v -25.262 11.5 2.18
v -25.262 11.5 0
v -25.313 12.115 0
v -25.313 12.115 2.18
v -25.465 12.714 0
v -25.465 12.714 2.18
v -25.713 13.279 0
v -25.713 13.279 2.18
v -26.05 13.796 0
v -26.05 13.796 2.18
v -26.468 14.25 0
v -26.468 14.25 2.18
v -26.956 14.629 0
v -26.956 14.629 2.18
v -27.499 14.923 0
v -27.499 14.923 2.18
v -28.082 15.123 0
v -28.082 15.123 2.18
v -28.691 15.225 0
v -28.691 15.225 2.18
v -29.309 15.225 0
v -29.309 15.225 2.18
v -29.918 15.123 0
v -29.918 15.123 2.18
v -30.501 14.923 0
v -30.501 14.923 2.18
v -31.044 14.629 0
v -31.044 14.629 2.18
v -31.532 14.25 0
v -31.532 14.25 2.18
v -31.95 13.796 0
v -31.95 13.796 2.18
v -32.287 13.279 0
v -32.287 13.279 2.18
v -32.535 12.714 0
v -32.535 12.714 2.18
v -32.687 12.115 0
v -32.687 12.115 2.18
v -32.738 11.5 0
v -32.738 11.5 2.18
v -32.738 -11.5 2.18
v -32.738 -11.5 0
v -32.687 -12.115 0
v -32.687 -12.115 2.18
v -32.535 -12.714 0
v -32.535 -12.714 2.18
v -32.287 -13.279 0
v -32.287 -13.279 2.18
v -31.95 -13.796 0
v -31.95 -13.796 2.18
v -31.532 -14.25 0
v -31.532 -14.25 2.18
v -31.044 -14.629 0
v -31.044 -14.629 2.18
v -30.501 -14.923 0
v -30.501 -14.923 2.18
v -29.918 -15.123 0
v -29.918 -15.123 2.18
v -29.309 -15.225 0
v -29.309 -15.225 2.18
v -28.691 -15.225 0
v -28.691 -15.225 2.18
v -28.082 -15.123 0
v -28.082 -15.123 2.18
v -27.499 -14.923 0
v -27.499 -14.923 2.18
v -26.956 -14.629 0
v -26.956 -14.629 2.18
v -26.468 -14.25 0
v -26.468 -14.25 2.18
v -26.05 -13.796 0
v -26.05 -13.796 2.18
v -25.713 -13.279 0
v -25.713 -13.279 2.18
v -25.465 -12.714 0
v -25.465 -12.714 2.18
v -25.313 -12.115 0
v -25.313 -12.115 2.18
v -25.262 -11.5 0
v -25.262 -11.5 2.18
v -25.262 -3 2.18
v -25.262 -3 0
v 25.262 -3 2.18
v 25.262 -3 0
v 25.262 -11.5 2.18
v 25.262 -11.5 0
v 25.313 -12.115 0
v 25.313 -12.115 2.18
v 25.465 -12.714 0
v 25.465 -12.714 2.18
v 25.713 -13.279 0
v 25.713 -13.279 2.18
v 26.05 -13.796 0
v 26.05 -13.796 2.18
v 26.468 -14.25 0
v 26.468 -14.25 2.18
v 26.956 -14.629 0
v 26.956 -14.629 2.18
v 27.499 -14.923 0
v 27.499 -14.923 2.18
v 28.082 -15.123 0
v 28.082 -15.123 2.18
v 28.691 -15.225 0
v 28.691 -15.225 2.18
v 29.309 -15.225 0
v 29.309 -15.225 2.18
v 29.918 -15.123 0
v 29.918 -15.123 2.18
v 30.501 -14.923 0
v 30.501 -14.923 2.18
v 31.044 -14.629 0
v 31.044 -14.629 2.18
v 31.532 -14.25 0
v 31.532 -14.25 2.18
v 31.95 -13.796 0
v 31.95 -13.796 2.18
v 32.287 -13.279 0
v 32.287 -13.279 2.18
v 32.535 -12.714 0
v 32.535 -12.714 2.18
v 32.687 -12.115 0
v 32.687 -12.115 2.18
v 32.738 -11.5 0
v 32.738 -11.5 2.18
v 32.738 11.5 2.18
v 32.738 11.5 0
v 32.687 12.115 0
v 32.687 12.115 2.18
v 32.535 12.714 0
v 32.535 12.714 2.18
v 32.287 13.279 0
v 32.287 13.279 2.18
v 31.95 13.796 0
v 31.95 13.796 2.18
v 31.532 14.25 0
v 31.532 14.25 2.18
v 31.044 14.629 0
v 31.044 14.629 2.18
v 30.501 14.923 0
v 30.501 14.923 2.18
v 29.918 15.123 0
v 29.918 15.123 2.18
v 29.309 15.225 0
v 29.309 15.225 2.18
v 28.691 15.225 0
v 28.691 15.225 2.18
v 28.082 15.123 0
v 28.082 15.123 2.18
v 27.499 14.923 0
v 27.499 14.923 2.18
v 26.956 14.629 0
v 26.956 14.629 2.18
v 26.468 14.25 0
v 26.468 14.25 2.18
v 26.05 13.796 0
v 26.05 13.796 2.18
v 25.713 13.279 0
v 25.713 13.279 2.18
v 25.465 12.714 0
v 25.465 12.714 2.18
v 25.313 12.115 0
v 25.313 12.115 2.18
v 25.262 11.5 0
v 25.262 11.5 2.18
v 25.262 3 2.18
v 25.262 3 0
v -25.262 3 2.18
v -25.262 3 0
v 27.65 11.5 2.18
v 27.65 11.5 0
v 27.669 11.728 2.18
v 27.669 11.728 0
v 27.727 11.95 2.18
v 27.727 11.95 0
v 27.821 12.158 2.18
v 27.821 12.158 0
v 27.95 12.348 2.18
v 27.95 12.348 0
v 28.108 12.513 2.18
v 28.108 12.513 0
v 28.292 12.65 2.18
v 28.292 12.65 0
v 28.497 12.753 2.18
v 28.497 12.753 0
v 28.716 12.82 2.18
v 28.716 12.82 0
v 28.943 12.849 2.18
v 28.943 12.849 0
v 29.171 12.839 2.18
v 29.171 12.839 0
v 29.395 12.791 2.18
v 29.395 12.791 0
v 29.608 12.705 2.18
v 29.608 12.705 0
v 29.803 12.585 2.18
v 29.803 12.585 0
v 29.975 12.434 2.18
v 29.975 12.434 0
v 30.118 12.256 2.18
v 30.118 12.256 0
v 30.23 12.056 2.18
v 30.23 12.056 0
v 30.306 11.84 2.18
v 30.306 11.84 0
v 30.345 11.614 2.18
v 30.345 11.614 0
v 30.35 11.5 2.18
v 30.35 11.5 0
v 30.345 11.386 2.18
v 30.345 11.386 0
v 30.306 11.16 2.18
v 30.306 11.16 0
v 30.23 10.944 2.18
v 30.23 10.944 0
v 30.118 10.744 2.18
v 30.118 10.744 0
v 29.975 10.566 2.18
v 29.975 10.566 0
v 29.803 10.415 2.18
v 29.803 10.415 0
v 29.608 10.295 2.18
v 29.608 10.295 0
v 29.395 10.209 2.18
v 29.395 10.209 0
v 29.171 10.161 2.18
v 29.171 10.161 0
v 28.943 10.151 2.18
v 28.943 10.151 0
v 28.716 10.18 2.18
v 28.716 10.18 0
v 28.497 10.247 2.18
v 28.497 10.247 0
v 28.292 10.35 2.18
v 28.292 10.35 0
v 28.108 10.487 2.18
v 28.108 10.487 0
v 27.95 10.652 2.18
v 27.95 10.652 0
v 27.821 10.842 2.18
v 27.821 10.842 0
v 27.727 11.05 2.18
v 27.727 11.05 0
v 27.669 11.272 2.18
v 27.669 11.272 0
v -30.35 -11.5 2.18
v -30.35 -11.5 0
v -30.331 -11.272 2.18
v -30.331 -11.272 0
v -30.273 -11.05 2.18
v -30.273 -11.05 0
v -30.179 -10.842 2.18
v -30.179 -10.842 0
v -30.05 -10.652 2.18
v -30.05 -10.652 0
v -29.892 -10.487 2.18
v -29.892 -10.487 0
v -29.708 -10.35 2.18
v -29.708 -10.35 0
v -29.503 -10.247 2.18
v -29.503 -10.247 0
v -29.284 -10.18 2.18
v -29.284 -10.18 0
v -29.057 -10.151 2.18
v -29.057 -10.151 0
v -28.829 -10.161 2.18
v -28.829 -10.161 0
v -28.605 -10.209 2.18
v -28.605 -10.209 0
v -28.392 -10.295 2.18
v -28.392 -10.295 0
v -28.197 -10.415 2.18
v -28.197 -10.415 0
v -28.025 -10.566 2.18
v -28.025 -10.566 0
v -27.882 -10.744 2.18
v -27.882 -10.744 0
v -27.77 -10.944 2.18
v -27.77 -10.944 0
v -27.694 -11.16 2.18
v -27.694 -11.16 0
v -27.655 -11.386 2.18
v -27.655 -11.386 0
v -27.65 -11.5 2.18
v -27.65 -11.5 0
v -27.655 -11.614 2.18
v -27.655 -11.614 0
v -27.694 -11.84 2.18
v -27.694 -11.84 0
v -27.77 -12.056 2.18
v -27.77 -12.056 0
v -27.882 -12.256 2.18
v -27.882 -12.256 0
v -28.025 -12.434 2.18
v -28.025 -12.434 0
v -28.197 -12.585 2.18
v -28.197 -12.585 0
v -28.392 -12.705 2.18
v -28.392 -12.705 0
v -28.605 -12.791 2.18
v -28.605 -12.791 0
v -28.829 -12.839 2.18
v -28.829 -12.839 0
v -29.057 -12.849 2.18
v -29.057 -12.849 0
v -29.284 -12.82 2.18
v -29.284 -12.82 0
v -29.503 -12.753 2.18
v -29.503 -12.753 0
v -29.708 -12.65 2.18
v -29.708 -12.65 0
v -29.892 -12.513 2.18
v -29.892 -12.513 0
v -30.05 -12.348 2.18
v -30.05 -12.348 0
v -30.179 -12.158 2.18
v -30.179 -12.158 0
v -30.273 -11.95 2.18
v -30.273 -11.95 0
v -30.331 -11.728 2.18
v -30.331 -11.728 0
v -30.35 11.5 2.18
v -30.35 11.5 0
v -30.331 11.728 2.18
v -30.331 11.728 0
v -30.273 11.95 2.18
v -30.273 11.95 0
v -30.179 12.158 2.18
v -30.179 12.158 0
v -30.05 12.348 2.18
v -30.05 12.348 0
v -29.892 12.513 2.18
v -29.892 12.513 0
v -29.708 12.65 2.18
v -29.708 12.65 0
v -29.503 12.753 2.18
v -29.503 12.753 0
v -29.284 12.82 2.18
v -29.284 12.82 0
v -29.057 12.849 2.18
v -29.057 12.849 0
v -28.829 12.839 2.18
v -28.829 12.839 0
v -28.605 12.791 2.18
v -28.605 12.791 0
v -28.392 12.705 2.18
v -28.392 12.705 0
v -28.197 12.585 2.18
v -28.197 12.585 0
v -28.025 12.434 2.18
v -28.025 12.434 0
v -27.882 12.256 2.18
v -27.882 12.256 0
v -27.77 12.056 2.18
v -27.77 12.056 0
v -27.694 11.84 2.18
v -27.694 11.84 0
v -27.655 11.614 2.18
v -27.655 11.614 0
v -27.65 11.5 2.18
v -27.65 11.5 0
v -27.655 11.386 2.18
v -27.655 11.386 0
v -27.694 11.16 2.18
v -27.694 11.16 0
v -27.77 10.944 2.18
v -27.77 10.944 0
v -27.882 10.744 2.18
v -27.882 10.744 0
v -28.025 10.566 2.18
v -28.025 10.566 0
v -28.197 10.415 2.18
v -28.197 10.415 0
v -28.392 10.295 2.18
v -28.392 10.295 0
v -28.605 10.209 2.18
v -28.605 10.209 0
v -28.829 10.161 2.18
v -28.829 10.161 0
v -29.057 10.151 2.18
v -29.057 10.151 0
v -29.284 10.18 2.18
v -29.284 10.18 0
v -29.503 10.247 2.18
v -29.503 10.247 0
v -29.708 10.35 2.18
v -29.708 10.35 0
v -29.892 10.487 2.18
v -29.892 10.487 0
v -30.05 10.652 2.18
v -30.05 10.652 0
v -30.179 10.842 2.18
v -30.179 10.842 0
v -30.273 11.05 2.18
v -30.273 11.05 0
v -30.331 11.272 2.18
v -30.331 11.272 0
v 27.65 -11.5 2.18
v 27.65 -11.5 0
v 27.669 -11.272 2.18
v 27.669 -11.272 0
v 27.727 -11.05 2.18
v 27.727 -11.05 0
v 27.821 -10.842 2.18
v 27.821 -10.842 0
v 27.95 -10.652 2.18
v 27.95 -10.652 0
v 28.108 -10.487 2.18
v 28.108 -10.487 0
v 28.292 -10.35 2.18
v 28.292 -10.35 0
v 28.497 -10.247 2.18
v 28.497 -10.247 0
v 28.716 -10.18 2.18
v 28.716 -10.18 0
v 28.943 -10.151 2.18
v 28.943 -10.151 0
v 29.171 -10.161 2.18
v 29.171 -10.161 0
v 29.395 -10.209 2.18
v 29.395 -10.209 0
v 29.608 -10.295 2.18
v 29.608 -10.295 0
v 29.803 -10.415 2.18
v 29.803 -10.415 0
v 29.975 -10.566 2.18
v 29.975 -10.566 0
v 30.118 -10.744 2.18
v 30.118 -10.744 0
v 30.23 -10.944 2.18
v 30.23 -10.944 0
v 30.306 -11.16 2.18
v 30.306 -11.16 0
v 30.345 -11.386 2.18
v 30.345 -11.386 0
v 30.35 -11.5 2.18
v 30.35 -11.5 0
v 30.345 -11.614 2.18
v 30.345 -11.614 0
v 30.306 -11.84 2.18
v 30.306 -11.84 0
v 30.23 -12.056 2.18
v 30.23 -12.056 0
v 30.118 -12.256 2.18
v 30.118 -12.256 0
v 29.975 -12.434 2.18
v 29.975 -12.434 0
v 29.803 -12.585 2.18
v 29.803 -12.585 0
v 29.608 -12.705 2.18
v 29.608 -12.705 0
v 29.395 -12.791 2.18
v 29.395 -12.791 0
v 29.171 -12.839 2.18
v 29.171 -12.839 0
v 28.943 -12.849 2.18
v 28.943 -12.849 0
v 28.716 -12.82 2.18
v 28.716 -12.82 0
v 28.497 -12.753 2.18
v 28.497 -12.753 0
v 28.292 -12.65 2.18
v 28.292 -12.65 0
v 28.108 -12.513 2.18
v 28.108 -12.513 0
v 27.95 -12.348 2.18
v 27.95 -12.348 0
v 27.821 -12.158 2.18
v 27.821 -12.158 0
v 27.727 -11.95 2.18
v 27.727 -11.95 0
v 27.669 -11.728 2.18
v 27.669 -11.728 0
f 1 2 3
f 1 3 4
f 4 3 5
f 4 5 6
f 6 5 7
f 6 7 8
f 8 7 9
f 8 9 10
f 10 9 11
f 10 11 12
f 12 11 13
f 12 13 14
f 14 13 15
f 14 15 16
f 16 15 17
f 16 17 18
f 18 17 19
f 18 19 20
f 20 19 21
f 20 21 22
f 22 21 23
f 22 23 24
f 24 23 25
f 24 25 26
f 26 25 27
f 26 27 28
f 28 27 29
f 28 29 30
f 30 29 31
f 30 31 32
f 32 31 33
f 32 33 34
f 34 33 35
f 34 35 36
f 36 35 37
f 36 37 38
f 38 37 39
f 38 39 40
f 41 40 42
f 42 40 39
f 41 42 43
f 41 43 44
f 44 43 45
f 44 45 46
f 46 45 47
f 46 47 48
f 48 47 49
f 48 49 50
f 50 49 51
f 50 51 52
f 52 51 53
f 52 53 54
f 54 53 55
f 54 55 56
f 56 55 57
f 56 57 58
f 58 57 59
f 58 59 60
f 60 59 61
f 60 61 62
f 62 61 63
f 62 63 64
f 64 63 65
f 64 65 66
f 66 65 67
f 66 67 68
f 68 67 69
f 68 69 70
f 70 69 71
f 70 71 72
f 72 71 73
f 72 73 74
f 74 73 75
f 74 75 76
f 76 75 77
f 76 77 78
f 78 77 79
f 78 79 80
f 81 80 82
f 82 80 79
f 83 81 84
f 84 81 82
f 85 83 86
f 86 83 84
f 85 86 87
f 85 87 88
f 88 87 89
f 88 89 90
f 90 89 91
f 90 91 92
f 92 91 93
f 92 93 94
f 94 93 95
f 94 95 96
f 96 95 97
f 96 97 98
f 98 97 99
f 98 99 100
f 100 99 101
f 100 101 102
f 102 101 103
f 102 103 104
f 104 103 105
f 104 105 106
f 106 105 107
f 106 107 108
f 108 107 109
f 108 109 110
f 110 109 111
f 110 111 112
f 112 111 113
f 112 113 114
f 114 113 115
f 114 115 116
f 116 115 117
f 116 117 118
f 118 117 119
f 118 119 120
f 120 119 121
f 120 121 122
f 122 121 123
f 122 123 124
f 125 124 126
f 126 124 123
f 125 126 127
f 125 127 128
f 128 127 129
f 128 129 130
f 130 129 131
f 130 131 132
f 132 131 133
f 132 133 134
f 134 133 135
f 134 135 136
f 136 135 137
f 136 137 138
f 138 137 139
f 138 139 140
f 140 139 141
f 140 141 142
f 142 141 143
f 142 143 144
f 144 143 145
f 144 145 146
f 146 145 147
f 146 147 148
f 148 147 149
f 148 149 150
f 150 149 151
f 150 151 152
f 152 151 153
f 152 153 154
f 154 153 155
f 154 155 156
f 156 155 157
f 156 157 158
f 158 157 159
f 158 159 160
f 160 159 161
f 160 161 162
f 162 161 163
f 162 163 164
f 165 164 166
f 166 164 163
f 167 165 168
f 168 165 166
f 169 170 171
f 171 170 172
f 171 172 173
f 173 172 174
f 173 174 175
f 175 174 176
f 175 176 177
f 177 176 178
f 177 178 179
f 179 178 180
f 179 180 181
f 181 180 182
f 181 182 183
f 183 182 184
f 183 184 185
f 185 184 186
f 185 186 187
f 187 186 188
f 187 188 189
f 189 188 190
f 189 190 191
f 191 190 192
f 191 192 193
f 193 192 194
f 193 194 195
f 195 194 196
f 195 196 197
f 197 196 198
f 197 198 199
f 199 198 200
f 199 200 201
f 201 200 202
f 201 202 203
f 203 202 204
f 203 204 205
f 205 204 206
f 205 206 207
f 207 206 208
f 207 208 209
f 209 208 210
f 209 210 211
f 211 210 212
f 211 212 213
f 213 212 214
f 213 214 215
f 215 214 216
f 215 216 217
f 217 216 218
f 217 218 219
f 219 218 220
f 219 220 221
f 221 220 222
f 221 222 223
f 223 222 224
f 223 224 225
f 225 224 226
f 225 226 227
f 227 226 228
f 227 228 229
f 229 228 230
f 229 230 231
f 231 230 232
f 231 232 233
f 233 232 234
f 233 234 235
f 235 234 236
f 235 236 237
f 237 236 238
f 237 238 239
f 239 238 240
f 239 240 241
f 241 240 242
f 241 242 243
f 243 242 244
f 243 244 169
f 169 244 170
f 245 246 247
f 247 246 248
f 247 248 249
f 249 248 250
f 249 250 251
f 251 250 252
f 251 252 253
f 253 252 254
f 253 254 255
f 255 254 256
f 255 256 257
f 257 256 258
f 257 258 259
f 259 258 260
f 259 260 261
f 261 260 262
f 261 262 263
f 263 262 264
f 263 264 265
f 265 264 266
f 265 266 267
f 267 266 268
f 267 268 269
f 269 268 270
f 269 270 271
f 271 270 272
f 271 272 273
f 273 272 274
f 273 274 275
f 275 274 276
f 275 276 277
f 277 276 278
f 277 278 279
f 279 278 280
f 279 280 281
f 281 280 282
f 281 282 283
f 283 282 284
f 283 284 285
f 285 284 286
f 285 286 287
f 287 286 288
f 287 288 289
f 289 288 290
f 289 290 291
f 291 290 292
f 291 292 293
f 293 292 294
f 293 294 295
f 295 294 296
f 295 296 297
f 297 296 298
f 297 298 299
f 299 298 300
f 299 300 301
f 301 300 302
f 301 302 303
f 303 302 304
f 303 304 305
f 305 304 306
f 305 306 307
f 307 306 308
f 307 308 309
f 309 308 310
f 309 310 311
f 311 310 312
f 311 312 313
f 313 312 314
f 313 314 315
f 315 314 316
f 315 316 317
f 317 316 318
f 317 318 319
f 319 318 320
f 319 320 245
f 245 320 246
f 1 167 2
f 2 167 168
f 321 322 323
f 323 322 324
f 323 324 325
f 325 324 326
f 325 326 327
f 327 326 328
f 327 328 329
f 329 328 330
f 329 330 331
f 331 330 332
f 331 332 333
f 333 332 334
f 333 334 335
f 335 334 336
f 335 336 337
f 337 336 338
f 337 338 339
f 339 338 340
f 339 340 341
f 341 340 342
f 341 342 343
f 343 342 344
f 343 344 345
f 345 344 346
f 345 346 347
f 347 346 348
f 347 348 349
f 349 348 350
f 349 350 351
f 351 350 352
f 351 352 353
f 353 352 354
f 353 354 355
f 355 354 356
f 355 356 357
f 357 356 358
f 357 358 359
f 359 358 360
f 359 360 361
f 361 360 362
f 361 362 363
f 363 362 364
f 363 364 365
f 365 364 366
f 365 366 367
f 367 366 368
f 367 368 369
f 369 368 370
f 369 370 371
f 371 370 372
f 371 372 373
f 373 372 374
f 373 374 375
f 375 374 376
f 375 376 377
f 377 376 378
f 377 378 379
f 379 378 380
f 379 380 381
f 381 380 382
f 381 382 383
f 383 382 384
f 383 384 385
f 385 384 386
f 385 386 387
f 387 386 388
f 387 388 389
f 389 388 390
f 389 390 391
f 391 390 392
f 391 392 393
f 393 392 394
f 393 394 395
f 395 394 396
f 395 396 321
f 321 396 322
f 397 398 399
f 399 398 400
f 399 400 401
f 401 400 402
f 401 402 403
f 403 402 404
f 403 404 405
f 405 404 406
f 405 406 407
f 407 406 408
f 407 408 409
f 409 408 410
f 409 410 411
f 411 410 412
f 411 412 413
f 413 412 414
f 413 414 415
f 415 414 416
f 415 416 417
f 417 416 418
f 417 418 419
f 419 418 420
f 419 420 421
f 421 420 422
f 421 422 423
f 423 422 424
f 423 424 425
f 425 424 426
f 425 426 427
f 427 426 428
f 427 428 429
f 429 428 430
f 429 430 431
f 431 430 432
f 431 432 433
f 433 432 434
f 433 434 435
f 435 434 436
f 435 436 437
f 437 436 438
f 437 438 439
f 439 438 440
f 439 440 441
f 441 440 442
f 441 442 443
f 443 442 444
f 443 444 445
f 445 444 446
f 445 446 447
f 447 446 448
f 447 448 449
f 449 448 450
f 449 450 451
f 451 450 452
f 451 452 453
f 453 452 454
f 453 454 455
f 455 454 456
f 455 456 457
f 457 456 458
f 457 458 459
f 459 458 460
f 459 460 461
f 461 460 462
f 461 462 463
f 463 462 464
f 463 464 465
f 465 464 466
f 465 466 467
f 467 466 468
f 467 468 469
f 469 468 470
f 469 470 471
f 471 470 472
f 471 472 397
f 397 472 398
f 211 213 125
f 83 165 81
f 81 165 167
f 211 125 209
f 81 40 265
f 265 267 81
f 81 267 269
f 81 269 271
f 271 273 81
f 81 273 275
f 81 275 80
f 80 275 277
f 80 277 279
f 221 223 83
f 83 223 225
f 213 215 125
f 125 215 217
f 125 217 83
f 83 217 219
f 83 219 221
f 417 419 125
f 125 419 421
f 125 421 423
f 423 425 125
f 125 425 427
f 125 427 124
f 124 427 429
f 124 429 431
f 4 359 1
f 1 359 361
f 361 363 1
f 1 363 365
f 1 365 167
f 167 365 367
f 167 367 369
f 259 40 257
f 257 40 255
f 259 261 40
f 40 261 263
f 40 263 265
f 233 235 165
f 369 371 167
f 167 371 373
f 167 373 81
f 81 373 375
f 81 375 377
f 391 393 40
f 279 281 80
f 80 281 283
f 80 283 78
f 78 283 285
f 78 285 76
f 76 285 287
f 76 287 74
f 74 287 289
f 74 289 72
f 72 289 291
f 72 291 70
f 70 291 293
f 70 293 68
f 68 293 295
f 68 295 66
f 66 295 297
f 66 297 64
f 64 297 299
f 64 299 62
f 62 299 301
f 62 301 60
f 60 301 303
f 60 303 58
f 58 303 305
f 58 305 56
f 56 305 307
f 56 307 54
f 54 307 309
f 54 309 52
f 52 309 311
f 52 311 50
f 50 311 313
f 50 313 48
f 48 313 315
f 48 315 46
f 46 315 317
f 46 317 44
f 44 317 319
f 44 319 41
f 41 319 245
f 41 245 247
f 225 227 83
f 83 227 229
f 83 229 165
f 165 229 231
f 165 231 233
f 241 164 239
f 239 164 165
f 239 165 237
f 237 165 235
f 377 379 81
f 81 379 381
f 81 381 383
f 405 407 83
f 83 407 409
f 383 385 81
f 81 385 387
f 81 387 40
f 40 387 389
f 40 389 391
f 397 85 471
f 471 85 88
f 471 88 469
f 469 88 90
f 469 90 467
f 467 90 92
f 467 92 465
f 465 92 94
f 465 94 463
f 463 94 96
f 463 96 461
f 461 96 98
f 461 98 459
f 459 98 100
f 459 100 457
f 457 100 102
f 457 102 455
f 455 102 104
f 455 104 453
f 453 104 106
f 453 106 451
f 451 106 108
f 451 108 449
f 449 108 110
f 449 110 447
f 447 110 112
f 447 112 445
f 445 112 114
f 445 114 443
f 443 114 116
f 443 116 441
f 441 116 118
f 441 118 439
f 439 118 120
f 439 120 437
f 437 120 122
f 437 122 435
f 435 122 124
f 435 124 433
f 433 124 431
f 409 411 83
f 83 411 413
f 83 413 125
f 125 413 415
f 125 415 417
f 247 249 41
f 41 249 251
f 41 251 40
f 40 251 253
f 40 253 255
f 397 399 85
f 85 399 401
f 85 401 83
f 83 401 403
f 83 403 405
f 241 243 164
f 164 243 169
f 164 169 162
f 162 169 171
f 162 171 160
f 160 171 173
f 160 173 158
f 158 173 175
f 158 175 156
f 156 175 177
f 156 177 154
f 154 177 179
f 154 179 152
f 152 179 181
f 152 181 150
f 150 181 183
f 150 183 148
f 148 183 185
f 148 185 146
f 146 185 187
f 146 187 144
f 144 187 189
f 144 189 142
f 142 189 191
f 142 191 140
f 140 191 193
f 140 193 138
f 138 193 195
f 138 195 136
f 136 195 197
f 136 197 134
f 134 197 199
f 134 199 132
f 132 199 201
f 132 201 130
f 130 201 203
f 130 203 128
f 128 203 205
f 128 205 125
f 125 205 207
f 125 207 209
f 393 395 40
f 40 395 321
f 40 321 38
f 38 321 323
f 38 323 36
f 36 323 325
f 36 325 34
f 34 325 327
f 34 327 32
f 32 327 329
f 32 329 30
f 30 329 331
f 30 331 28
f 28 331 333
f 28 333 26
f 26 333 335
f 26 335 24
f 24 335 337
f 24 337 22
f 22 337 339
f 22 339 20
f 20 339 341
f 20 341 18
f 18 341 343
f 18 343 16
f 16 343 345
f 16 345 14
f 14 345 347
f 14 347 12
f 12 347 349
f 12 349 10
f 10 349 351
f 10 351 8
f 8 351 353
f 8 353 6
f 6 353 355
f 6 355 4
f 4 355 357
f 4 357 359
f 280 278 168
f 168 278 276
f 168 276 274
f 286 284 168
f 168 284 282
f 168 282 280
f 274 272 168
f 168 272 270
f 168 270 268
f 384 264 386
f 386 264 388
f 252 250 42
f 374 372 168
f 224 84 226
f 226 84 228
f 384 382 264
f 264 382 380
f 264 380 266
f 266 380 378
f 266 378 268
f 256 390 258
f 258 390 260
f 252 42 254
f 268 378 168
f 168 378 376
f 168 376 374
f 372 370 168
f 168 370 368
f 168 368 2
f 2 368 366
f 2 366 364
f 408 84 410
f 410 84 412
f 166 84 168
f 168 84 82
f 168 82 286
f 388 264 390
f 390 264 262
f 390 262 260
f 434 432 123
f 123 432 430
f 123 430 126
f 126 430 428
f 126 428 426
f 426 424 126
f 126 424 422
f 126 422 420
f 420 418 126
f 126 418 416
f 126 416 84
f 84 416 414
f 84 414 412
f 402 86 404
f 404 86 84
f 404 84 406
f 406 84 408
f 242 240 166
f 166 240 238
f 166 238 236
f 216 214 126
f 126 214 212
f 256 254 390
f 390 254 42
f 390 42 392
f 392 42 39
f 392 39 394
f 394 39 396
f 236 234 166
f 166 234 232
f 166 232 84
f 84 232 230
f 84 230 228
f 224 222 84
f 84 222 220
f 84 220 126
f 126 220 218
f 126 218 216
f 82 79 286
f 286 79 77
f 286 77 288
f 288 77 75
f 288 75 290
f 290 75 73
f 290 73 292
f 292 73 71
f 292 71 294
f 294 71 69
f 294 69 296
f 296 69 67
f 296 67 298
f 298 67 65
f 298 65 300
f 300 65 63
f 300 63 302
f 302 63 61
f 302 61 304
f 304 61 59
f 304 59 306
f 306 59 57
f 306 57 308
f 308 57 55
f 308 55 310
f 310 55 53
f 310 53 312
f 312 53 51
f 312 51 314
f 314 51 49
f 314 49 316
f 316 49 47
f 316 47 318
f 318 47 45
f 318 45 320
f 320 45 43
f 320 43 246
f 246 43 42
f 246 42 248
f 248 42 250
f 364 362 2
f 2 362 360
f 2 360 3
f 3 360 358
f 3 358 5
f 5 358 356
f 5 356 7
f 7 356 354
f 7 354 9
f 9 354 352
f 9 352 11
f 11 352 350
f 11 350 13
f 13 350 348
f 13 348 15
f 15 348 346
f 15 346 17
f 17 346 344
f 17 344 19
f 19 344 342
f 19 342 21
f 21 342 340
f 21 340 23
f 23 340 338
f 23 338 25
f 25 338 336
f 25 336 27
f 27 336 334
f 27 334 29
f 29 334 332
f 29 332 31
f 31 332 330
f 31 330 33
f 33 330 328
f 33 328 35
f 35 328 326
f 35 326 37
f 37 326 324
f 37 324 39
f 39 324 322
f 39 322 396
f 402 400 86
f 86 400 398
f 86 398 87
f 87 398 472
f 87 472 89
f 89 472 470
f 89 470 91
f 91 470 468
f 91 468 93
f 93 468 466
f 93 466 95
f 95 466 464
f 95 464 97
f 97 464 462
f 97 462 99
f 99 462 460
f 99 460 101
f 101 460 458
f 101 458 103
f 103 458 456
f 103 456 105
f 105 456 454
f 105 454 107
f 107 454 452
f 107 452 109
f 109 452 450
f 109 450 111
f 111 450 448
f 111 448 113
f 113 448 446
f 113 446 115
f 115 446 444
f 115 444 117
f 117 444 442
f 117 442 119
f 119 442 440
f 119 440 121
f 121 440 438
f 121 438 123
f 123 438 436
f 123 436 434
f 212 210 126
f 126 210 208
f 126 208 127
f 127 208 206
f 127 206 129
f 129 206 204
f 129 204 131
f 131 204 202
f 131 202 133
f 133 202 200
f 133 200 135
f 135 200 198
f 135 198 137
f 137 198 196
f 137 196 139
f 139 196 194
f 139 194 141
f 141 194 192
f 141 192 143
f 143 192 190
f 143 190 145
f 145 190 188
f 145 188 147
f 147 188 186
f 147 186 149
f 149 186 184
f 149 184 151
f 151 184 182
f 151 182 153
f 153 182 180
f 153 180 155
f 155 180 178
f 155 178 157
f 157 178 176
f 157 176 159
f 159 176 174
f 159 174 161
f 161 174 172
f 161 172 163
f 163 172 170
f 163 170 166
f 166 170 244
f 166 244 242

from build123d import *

# Parameters (mm, degrees)
SKETCH1_R           = 3.737759178
SKETCH1_W           = 50.524481644
SKETCH1_H           = 6
BOSS_EXTRUDE1_DEPTH = 2.18


with BuildPart() as part:
    # Sketch1 → Boss-Extrude1 (new body)
    # profile 1 of 7: a face of its own
    with BuildSketch(Plane.XY):
        with Locations((-29, 11.5)):
            Circle(SKETCH1_R)
        with BuildLine():
            ThreePointArc((-29, 10.15), (-27.65, 11.5), (-29, 12.85))
            ThreePointArc((-29, 12.85), (-30.35, 11.5), (-29, 10.15))
        make_face(mode=Mode.SUBTRACT)
    # profile 2 of 7: a face of its own
    with BuildSketch(Plane.XY):
        with BuildLine():
            Line((-25.262240822, 3), (-25.262240822, 11.5))
            ThreePointArc((-25.262240822, 11.5), (-29, 7.762240822), (-32.737759178, 11.5))
            Line((-32.737759178, 11.5), (-32.737759178, -11.5))
            ThreePointArc((-32.737759178, -11.5), (-29, -7.762240822), (-25.262240822, -11.5))
            Line((-25.262240822, -11.5), (-25.262240822, -3))
            Line((-25.262240822, -3), (-25.262240822, 3))
        make_face()
    # profile 3 of 7: a face of its own
    with BuildSketch(Plane.XY):
        with Locations((-29, -11.5)):
            Circle(SKETCH1_R)
        with BuildLine():
            ThreePointArc((-29, -10.15), (-30.35, -11.5), (-29, -12.85))
            ThreePointArc((-29, -12.85), (-27.65, -11.5), (-29, -10.15))
        make_face(mode=Mode.SUBTRACT)
    # profile 4 of 7: a face of its own
    with BuildSketch(Plane.XY):
        Rectangle(SKETCH1_W, SKETCH1_H)
    # profile 5 of 7: a face of its own
    with BuildSketch(Plane.XY):
        with BuildLine():
            Line((25.262240822, 11.5), (25.262240822, 3))
            Line((25.262240822, 3), (25.262240822, -3))
            Line((25.262240822, -3), (25.262240822, -11.5))
            ThreePointArc((25.262240822, -11.5), (29, -7.762240822), (32.737759178, -11.5))
            Line((32.737759178, -11.5), (32.737759178, 11.5))
            ThreePointArc((32.737759178, 11.5), (29, 7.762240822), (25.262240822, 11.5))
        make_face()
    # profile 6 of 7: a face of its own
    with BuildSketch(Plane.XY):
        with Locations((29, 11.5)):
            Circle(SKETCH1_R)
        with BuildLine():
            ThreePointArc((29, 10.15), (30.35, 11.5), (29, 12.85))
            ThreePointArc((29, 12.85), (27.65, 11.5), (29, 10.15))
        make_face(mode=Mode.SUBTRACT)
    # profile 7 of 7: a face of its own
    with BuildSketch(Plane.XY):
        with Locations((29, -11.5)):
            Circle(SKETCH1_R)
        with BuildLine():
            ThreePointArc((29, -12.85), (30.35, -11.5), (29, -10.15))
            ThreePointArc((29, -10.15), (27.65, -11.5), (29, -12.85))
        make_face(mode=Mode.SUBTRACT)
    extrude(amount=BOSS_EXTRUDE1_DEPTH)


solid = part.part
